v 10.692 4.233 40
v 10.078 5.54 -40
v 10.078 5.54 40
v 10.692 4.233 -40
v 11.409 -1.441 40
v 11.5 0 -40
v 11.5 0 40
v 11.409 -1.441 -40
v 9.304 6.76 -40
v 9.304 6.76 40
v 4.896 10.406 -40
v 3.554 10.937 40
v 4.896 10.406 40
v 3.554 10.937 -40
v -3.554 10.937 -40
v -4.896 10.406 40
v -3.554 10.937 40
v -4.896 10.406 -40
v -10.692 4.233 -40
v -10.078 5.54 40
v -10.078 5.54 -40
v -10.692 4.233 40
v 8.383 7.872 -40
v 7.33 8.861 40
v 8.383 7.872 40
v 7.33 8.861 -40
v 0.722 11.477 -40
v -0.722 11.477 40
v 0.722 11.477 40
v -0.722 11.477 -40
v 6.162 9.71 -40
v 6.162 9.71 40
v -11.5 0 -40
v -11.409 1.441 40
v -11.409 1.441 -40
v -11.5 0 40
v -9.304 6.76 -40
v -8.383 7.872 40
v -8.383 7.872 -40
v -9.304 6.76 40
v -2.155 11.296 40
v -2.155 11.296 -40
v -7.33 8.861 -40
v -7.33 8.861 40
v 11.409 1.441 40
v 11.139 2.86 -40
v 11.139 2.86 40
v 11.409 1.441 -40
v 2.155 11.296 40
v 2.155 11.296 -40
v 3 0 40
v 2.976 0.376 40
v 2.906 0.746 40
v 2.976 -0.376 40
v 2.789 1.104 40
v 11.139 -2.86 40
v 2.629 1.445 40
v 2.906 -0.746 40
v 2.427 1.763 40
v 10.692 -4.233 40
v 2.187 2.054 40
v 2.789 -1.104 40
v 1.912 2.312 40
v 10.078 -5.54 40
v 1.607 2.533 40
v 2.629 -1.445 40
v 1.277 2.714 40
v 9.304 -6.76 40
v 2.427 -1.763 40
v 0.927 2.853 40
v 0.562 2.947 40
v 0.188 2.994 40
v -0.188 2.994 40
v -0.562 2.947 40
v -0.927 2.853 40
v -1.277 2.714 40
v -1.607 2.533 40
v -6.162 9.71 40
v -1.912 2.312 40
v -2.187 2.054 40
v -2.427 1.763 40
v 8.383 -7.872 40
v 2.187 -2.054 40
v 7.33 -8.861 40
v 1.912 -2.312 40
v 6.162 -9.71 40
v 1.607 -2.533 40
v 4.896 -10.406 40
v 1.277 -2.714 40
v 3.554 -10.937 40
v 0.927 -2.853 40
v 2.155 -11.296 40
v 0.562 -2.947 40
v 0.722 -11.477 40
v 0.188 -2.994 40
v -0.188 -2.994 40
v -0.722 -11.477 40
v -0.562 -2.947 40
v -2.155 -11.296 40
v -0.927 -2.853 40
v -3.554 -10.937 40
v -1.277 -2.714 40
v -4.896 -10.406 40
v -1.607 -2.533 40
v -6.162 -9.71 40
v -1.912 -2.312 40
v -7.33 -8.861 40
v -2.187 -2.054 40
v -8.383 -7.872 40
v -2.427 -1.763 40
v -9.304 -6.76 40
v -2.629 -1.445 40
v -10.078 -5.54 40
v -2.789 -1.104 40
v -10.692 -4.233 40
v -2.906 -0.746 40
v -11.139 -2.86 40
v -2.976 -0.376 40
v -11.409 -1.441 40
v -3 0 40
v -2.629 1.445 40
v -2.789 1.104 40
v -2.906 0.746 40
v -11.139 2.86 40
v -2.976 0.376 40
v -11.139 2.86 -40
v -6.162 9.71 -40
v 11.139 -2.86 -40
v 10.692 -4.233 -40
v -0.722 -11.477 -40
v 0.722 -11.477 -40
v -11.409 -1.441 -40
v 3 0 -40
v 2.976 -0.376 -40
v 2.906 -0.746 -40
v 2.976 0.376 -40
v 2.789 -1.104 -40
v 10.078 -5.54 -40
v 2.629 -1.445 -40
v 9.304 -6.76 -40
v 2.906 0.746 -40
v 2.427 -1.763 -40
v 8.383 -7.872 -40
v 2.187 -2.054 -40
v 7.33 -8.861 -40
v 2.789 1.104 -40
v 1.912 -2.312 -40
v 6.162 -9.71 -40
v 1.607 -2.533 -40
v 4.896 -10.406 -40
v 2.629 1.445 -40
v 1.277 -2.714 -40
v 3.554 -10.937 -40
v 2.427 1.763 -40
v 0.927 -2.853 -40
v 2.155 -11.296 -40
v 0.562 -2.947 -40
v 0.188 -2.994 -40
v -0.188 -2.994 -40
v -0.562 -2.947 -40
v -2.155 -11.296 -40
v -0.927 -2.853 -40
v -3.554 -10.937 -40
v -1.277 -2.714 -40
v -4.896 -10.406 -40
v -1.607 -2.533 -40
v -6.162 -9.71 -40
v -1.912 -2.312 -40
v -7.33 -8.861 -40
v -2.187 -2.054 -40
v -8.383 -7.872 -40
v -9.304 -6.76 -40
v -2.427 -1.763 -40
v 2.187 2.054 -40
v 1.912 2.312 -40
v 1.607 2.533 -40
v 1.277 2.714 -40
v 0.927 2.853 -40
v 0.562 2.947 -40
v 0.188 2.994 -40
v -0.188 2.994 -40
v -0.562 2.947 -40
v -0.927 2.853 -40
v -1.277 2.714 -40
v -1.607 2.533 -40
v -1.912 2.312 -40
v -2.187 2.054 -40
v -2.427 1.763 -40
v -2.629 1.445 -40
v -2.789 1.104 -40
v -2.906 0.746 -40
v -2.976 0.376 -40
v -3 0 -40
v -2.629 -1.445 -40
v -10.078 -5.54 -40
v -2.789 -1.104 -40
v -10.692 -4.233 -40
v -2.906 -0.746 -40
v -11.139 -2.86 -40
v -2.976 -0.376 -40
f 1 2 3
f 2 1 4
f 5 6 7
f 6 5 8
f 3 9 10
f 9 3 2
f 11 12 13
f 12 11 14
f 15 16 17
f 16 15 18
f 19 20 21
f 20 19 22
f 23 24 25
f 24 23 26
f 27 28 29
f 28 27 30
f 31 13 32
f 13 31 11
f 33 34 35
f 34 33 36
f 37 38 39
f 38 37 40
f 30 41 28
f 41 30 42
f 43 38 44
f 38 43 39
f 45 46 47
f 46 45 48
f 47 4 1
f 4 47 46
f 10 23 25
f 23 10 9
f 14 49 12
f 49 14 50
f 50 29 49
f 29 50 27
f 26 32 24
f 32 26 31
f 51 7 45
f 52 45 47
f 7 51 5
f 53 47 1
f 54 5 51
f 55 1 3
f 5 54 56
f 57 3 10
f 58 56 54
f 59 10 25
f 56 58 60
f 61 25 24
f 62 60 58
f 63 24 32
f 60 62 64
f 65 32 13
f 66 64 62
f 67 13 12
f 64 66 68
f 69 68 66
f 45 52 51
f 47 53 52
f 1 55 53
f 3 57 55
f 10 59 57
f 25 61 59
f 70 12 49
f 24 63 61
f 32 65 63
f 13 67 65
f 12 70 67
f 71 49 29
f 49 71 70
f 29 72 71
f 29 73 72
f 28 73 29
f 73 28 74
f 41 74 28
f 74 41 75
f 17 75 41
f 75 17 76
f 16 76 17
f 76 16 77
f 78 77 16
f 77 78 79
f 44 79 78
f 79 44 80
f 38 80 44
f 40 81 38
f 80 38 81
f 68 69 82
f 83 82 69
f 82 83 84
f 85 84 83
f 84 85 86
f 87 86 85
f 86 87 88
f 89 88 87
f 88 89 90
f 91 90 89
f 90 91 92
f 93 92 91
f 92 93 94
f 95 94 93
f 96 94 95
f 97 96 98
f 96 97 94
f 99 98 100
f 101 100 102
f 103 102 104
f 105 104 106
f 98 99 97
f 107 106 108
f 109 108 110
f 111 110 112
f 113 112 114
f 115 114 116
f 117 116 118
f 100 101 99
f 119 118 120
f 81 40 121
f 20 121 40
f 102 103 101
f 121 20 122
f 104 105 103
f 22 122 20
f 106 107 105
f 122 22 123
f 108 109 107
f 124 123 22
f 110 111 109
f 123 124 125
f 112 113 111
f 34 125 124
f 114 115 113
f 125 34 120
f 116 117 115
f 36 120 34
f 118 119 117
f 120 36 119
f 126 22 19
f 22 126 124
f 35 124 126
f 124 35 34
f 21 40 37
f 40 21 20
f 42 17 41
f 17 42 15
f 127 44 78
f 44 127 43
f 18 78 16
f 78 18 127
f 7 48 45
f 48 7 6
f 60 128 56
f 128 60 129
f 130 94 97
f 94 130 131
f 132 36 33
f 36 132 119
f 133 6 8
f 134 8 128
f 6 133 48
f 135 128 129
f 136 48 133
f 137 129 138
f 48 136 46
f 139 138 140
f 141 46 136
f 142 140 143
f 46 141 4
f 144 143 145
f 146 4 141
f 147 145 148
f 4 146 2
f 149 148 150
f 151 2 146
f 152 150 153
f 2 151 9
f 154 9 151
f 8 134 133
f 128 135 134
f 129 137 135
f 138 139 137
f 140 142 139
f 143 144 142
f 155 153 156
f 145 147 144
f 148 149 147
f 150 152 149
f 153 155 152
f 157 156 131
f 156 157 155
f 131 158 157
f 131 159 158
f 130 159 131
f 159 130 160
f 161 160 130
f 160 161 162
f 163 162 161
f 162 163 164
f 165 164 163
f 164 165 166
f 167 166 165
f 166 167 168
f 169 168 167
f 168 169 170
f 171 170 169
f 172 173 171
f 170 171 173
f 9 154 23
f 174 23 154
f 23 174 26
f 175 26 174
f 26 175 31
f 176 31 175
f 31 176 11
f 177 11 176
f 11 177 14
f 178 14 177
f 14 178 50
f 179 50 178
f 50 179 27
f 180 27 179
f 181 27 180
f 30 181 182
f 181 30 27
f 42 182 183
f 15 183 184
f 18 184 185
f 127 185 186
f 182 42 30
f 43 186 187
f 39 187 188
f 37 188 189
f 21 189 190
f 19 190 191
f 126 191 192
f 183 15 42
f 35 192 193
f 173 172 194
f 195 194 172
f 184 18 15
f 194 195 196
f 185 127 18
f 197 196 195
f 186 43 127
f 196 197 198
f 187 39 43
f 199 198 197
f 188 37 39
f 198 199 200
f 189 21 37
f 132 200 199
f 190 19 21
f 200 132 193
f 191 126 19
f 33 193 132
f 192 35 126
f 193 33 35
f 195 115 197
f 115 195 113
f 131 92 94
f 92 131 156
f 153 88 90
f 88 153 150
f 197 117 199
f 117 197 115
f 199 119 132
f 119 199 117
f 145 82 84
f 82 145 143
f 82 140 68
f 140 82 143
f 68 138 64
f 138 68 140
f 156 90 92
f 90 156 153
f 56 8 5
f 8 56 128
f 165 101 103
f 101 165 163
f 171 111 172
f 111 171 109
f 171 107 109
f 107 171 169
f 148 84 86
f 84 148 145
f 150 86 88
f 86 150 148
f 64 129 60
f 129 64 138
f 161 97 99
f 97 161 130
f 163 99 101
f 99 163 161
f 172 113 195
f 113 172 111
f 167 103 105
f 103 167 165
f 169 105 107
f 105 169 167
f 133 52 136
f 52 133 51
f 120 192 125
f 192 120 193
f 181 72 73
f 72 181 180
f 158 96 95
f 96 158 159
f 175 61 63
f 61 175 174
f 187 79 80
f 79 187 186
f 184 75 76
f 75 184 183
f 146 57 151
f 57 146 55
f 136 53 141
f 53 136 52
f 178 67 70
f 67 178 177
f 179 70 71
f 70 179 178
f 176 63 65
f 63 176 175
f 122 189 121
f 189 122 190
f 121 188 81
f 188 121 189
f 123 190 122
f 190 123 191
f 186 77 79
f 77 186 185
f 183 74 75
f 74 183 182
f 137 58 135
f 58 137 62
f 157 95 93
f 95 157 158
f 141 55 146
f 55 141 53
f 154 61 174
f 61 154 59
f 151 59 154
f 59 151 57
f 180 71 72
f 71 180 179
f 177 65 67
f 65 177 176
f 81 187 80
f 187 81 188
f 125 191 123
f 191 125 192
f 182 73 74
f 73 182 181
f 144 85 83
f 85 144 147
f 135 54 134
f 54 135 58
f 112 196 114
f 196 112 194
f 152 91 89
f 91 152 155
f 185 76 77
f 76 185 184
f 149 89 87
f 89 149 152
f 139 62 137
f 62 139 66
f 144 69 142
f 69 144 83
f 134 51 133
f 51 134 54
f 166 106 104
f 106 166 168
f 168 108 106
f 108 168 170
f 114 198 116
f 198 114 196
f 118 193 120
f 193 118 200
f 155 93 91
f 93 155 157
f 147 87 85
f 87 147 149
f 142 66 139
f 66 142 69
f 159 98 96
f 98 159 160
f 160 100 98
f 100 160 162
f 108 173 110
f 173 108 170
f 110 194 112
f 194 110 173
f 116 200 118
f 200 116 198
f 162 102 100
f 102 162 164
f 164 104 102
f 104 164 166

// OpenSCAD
$fn = 50;


difference() {
	union() {
		translate(v = [0, 0, -40.0000000000]) {
			cylinder(h = 80, r = 11.5000000000);
		}
	}
	union() {
		translate(v = [0, 0, -100.0000000000]) {
			cylinder(h = 200, r = 3);
		}
	}
}
